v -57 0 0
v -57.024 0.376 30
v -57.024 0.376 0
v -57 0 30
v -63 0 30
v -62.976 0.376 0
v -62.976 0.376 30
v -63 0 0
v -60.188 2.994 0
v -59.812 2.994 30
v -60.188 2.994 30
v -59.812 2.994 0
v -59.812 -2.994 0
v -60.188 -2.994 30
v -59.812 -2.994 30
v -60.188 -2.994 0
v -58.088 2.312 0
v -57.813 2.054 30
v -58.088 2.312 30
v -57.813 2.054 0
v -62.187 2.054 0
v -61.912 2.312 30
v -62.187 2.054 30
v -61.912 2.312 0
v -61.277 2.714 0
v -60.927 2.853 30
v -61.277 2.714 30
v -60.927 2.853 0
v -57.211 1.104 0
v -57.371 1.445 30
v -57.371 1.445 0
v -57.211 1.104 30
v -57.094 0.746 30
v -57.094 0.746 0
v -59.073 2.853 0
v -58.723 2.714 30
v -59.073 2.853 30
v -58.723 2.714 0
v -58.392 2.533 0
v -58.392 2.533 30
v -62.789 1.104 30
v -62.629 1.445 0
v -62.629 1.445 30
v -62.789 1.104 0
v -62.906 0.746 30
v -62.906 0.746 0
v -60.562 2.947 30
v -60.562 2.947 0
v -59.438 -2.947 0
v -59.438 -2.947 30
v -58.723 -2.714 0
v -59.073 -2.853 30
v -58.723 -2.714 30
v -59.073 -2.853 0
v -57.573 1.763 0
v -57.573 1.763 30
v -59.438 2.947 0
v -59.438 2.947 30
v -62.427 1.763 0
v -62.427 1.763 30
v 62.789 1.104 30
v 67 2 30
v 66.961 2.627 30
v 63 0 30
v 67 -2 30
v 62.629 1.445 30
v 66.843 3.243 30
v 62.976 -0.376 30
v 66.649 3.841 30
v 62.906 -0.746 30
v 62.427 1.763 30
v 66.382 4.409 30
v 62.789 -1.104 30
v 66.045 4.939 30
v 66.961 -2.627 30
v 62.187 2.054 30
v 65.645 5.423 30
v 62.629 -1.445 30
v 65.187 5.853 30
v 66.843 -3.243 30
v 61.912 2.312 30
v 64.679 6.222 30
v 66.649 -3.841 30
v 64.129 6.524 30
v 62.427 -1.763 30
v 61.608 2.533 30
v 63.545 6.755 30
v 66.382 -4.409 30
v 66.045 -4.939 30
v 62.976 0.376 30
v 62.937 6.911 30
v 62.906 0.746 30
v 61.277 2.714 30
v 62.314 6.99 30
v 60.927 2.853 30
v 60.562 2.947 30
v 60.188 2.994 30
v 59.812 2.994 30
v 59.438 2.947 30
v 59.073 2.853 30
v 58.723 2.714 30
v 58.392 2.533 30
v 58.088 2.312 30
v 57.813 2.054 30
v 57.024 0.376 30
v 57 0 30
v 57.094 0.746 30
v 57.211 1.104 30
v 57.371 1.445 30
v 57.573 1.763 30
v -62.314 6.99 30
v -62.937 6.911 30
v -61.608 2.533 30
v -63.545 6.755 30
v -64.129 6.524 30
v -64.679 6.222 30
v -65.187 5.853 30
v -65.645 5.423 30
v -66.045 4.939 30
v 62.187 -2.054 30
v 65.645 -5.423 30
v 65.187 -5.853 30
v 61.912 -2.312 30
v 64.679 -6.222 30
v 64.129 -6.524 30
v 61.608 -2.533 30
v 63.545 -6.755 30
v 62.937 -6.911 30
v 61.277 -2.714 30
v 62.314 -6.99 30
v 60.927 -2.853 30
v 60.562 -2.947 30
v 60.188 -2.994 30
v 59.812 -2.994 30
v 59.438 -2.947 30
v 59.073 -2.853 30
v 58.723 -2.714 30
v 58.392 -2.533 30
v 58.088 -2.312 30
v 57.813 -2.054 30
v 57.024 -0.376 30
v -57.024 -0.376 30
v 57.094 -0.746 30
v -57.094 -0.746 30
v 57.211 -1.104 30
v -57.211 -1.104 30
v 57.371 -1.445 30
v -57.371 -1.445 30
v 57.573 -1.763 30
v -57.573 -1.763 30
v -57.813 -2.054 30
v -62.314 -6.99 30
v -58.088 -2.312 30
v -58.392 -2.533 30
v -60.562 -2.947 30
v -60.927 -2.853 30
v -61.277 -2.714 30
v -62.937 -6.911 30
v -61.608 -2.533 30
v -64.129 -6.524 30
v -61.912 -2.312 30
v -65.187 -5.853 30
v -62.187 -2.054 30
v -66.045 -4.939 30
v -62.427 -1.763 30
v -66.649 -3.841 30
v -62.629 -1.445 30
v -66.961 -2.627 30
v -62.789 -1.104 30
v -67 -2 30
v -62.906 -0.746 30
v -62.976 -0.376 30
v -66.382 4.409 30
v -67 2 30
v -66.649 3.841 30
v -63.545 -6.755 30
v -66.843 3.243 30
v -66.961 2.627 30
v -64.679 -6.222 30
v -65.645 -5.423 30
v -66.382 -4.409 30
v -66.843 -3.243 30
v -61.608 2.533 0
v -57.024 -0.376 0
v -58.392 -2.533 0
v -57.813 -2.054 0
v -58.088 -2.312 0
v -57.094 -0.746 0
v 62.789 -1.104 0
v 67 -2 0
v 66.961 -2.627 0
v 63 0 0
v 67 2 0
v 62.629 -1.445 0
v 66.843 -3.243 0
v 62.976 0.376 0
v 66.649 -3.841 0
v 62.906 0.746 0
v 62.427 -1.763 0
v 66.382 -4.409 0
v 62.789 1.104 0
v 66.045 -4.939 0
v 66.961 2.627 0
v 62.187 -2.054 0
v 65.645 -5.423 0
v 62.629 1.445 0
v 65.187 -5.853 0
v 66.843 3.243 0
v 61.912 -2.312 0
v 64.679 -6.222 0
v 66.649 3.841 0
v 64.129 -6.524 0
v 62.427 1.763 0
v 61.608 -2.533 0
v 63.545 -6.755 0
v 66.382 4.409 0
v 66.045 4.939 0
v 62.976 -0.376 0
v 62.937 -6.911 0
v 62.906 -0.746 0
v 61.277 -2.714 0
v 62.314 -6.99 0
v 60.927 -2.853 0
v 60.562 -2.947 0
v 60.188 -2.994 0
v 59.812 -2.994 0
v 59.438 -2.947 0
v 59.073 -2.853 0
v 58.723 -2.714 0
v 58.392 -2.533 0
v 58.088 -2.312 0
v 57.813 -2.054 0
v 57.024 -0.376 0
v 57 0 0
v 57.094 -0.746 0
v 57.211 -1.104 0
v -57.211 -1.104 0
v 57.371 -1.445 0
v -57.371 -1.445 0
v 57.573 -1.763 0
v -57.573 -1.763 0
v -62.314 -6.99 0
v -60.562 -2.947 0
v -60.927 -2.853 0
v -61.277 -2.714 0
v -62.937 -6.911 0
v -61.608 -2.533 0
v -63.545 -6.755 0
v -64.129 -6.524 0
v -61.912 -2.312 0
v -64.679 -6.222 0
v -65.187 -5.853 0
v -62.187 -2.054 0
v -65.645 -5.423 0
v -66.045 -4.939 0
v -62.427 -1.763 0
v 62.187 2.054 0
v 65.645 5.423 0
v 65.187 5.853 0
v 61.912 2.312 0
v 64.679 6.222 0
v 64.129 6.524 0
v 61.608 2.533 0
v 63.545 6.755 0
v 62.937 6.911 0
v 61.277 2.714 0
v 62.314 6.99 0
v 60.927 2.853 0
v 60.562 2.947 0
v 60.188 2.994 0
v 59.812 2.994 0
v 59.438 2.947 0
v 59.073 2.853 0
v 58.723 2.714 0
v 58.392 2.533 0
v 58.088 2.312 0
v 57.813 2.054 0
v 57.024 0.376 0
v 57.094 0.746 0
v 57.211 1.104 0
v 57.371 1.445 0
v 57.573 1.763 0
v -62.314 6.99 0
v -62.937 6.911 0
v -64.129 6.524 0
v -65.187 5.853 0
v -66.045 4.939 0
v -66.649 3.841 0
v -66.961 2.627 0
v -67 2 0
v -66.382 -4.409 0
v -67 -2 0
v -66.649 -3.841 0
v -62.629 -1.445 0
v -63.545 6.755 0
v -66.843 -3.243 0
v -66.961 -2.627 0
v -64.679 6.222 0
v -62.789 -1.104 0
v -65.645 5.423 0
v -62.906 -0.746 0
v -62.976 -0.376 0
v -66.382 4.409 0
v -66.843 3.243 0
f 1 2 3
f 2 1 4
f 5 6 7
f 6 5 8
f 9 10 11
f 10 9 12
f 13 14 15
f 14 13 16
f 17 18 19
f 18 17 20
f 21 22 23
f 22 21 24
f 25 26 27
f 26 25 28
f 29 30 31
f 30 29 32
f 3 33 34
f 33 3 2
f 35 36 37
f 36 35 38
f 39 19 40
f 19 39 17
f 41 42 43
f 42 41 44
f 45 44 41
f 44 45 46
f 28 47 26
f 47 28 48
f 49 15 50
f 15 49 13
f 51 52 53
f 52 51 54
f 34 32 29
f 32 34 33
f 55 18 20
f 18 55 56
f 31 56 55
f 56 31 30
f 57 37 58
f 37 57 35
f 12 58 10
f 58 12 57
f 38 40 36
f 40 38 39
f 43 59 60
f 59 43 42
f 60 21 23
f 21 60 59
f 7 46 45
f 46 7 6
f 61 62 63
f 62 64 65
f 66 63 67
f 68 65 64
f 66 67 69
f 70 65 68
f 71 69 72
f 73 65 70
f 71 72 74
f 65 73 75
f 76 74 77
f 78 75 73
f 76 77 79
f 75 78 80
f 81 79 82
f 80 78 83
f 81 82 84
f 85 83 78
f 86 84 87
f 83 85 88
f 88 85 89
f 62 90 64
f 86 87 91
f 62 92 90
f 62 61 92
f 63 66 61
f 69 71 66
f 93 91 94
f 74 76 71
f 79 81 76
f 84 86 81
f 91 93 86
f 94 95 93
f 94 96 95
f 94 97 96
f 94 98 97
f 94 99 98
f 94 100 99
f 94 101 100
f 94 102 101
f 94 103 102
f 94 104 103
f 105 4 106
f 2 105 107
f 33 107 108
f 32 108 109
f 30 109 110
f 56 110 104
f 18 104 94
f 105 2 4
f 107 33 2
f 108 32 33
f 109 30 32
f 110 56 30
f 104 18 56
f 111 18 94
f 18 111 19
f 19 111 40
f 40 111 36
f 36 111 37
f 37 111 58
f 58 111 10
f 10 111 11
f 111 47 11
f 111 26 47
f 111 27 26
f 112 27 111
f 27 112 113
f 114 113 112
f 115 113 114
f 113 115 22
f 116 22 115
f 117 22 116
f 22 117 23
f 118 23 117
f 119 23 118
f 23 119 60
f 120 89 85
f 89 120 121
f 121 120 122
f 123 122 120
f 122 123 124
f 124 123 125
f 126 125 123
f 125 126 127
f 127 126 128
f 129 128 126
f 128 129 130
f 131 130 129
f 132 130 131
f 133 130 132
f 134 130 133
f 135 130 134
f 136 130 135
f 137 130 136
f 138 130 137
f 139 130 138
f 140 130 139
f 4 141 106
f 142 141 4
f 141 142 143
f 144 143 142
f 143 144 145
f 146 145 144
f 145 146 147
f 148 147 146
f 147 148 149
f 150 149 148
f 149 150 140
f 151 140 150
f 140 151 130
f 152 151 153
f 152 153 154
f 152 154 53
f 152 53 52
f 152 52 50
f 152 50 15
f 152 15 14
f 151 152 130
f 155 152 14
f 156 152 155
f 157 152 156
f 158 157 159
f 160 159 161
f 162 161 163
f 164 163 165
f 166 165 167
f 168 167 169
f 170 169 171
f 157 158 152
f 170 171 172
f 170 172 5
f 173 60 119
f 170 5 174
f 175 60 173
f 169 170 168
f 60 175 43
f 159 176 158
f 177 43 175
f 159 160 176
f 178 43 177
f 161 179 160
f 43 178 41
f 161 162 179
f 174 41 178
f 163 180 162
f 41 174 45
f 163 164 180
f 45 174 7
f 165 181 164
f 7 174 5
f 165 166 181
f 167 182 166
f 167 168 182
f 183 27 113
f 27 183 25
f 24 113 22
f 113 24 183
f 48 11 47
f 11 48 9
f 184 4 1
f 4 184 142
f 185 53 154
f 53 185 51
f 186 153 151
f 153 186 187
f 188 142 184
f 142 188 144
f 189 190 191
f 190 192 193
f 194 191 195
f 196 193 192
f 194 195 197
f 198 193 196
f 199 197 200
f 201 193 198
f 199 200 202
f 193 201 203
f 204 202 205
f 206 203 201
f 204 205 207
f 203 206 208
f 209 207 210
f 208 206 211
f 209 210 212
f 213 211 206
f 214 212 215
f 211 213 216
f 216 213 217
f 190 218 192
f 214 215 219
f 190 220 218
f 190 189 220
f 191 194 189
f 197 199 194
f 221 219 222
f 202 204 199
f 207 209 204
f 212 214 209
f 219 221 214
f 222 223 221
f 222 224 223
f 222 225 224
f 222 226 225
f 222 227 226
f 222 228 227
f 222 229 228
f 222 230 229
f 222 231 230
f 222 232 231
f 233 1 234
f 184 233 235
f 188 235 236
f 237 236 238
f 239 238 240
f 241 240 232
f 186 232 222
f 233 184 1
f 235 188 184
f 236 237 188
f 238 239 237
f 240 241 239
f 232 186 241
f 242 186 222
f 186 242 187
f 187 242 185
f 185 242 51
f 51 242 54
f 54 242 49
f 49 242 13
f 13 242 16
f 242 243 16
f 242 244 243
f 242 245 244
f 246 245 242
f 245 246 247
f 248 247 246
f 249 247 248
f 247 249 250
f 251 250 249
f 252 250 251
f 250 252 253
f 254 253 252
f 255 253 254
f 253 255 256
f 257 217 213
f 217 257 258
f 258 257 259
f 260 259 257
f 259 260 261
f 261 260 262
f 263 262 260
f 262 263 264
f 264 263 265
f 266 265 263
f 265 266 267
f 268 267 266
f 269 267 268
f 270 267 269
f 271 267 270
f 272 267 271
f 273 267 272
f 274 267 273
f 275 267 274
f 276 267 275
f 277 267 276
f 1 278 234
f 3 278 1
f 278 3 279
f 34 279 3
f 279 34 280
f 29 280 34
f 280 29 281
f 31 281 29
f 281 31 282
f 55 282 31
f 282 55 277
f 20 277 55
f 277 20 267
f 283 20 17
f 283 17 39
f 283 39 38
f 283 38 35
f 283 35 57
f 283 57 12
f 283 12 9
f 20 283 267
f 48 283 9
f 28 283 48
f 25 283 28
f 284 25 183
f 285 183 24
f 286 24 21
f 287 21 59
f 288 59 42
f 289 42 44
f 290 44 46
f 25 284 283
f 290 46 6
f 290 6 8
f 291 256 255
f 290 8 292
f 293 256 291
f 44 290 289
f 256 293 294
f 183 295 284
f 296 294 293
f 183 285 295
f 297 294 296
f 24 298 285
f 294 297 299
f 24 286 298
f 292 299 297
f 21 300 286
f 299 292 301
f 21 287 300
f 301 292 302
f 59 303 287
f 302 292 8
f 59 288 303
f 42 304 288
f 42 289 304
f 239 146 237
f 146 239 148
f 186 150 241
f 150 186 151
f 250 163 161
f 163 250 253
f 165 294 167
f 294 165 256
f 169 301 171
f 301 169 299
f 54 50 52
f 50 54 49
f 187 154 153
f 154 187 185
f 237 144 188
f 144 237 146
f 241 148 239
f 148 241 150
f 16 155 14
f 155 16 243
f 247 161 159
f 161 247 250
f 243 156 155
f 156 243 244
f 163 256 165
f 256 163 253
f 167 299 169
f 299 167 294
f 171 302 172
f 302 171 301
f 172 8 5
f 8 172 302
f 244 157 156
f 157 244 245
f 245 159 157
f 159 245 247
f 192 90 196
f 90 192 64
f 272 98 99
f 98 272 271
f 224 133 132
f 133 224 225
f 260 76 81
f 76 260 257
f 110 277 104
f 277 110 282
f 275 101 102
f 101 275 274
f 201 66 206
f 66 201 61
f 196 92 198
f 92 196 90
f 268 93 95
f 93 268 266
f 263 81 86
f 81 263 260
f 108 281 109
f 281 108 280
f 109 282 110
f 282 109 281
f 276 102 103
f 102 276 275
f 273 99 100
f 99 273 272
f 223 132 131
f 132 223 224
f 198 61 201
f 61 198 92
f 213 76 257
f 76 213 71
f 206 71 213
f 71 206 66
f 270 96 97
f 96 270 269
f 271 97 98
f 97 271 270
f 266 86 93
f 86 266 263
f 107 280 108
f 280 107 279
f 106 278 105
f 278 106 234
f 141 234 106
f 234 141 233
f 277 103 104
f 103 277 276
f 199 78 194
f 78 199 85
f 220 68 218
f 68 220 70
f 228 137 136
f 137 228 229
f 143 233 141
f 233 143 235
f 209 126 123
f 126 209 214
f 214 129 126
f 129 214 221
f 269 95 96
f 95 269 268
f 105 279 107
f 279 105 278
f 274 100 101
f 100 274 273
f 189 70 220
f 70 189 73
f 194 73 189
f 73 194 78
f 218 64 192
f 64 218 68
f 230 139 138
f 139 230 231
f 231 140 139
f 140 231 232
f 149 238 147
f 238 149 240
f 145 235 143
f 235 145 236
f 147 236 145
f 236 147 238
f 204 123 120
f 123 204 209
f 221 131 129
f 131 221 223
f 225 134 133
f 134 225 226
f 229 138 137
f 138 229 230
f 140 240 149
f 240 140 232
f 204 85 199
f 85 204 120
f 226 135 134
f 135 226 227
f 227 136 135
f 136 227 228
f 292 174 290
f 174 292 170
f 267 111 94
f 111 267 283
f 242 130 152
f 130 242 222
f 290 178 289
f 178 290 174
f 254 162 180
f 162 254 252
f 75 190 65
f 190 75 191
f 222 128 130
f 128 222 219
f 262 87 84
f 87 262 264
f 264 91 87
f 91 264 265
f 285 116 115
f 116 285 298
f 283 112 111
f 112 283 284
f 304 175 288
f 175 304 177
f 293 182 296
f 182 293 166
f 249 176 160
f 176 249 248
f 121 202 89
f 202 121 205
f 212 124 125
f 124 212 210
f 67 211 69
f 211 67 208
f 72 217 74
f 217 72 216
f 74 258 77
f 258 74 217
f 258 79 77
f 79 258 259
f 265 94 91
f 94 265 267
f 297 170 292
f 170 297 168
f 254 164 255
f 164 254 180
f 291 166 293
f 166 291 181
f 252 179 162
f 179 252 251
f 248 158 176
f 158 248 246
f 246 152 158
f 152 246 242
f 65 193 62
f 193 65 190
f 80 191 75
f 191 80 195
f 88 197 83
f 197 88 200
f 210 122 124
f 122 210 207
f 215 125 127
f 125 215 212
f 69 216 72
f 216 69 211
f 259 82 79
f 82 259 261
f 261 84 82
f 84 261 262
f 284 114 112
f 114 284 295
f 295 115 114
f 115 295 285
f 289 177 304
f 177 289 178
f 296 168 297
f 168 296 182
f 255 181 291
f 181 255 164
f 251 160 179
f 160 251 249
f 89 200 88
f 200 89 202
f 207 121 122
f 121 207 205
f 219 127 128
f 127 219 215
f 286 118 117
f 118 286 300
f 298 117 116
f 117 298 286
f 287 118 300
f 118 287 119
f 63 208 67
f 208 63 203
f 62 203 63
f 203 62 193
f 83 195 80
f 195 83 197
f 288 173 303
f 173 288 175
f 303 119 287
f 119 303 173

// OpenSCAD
$fn = 50;


difference() {
	union() {
		hull() {
			translate(v = [-62.0000000000, 2.0000000000, 0]) {
				cylinder(h = 30, r = 5);
			}
			translate(v = [62.0000000000, 2.0000000000, 0]) {
				cylinder(h = 30, r = 5);
			}
			translate(v = [-62.0000000000, -2.0000000000, 0]) {
				cylinder(h = 30, r = 5);
			}
			translate(v = [62.0000000000, -2.0000000000, 0]) {
				cylinder(h = 30, r = 5);
			}
		}
	}
	union() {
		translate(v = [-60.0000000000, 0.0000000000, 0]) {
			cylinder(h = 30, r = 3.0000000000);
		}
		translate(v = [60.0000000000, 0.0000000000, 0]) {
			cylinder(h = 30, r = 3.0000000000);
		}
		translate(v = [-60.0000000000, 0.0000000000, 0]) {
			cylinder(h = 30, r = 1.5000000000);
		}
		translate(v = [60.0000000000, 0.0000000000, 0]) {
			cylinder(h = 30, r = 1.5000000000);
		}
		translate(v = [-60.0000000000, 0.0000000000, 0]) {
			cylinder(h = 30, r = 1.5000000000);
		}
		translate(v = [60.0000000000, 0.0000000000, 0]) {
			cylinder(h = 30, r = 1.5000000000);
		}
		translate(v = [-60.0000000000, 0.0000000000, 0]) {
			cylinder(h = 30, r = 1.5000000000);
		}
		translate(v = [60.0000000000, 0.0000000000, 0]) {
			cylinder(h = 30, r = 1.5000000000);
		}
	}
}
